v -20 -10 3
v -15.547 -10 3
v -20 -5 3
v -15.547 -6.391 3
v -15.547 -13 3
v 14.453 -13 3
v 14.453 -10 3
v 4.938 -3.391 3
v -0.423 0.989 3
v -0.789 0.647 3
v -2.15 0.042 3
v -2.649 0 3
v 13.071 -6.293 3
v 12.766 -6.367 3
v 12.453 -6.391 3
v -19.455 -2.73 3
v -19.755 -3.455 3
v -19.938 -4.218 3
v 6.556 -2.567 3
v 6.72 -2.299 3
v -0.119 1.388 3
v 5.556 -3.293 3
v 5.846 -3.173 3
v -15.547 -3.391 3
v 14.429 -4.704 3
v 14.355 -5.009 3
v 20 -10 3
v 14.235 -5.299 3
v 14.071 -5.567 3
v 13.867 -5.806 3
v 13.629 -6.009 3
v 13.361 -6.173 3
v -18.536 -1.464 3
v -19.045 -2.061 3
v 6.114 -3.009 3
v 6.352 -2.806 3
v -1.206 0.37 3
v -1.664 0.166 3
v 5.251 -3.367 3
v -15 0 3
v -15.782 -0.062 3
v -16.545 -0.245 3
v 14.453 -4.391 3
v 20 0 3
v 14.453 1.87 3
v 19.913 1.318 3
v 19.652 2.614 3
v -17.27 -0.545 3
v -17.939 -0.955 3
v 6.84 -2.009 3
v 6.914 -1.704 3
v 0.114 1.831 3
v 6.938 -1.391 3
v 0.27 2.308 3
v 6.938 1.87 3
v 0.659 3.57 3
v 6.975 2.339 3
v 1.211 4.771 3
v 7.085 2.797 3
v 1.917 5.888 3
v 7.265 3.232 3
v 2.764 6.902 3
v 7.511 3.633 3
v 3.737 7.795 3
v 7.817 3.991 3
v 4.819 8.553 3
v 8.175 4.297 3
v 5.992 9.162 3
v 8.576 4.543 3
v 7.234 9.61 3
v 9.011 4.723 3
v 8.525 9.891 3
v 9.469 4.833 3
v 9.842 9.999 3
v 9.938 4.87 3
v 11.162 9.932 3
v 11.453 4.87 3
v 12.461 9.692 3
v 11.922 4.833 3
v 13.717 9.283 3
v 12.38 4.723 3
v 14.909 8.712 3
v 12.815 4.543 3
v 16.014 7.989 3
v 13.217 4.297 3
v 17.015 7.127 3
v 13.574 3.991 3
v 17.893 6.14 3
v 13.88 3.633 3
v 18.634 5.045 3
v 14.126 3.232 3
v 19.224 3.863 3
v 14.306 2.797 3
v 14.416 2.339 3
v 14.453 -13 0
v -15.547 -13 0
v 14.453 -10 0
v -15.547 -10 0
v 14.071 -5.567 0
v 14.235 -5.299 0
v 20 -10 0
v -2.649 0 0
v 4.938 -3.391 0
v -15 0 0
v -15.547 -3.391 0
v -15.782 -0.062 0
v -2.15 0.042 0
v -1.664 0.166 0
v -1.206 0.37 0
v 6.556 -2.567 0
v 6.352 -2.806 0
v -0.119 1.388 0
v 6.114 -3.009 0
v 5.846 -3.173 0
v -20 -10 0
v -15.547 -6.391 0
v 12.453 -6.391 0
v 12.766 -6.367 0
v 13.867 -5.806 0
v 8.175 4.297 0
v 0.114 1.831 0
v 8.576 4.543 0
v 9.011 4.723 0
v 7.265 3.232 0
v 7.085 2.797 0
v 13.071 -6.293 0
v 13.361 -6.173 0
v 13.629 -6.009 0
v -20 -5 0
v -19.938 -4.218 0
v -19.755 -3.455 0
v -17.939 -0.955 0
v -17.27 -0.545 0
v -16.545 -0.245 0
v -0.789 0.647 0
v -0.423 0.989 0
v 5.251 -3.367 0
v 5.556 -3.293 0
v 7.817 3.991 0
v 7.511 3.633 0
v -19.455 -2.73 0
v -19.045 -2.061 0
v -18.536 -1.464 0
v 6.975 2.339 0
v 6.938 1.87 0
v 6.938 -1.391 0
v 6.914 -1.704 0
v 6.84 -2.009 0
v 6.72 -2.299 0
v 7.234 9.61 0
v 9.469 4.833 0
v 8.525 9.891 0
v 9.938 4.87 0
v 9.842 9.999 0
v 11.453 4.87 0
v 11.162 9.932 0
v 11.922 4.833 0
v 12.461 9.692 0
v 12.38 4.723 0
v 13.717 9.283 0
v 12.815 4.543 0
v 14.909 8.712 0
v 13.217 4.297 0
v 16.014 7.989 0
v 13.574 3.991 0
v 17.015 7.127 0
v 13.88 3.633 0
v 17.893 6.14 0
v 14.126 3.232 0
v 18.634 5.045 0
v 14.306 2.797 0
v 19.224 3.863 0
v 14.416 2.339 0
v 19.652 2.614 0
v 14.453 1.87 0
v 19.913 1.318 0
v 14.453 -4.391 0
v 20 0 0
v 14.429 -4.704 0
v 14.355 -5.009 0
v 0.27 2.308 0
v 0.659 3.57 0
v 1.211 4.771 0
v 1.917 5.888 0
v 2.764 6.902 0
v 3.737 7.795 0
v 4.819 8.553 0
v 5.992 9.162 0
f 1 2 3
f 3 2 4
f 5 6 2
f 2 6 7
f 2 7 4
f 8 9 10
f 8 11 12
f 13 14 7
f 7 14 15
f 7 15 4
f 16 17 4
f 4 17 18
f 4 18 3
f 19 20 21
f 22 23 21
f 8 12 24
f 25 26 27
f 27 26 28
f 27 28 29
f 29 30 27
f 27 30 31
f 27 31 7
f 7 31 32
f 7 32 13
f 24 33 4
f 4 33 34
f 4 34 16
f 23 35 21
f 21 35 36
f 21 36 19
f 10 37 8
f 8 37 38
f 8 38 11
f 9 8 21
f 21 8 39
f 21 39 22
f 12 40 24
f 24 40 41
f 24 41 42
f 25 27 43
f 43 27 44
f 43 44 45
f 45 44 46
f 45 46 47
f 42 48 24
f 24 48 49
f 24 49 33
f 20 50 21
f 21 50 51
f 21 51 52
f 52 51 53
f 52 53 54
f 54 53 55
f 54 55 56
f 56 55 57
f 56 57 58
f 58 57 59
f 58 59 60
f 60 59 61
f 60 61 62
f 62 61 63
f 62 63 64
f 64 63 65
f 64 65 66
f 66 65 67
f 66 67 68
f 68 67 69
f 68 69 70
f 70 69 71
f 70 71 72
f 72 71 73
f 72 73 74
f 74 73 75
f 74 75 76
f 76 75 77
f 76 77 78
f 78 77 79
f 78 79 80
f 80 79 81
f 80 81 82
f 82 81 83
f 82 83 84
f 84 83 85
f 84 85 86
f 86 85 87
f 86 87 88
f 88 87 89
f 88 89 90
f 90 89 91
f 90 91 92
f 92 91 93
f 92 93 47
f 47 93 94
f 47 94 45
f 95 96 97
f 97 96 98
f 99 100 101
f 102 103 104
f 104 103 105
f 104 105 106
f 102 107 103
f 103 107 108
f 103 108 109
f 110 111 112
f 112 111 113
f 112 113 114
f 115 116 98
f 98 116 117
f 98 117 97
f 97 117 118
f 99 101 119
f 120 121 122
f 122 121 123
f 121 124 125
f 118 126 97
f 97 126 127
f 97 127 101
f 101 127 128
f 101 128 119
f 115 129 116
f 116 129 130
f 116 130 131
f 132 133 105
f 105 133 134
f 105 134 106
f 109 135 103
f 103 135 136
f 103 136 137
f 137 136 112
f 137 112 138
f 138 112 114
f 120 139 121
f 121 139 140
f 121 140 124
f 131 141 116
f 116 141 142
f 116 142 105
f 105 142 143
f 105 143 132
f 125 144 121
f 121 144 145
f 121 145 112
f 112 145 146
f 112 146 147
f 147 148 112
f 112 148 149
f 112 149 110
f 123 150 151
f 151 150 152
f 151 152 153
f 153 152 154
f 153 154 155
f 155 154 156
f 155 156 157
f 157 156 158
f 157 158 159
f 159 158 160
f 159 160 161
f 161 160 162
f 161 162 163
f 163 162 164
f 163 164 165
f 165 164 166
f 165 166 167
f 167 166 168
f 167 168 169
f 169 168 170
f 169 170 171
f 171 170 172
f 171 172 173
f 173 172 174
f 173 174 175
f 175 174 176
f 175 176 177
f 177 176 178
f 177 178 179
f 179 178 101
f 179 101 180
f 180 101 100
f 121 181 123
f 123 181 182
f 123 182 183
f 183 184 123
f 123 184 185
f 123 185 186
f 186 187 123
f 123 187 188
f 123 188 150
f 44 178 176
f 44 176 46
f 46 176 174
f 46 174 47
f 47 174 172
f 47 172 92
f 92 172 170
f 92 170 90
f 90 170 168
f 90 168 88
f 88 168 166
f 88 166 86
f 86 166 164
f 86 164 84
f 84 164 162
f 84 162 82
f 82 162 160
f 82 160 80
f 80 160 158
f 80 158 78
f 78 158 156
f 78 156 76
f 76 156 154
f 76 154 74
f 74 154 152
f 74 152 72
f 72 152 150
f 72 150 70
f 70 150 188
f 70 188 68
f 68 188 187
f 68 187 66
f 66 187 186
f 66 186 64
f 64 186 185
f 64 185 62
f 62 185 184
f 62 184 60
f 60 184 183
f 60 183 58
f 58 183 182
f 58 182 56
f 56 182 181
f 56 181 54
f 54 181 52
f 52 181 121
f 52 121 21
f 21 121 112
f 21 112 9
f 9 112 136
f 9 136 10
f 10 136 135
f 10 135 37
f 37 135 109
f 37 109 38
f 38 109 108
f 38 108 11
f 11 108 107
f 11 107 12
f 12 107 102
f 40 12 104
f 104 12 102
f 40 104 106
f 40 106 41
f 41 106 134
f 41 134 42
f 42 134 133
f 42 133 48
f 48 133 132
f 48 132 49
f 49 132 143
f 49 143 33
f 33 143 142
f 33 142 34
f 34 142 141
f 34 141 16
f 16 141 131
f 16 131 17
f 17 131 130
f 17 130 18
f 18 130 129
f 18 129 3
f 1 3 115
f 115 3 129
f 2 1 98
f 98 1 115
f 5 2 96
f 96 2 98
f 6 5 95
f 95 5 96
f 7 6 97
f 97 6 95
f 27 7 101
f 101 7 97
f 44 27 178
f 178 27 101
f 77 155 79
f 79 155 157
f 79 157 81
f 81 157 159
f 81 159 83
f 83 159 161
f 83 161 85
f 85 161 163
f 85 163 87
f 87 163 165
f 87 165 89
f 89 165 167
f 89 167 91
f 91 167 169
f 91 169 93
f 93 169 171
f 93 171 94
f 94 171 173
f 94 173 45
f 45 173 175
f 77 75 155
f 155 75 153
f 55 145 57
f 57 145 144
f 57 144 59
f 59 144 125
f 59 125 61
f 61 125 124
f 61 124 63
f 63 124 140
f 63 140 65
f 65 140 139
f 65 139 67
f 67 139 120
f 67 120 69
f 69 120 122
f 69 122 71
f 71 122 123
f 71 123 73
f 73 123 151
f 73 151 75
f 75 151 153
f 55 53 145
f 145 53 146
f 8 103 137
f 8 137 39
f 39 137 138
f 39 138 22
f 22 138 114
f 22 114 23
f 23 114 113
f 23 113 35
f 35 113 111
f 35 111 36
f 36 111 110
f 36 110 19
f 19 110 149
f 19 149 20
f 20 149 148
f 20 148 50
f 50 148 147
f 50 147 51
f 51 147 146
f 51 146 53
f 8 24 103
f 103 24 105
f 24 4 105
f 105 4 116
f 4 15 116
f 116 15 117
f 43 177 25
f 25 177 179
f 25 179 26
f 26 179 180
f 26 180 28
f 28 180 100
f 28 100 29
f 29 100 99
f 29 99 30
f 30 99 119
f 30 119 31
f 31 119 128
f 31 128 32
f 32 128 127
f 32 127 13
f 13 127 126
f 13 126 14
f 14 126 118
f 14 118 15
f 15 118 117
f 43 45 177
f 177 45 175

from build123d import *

# Parameters (mm, degrees)
SALIENTE_EXTRUIR1_DEPTH = 3


with BuildPart() as part:
    # Croquis1 → Saliente-Extruir1 (new body)
    with BuildSketch(Plane.XY):
        with BuildLine():
            Line((-2.649110641, 0), (-15, 0))
            ThreePointArc((-15, 0), (-18.535533906, -1.464466094), (-20, -5))
            Line((-20, -5), (-20, -10))
            Line((-20, -10), (-15.546822742, -10))
            Line((-15.546822742, -10), (-15.546822742, -13))
            Line((-15.546822742, -13), (14.453177258, -13))
            Line((14.453177258, -13), (14.453177258, -10))
            Line((14.453177258, -10), (20, -10))
            Line((20, -10), (20, 0))
            ThreePointArc((20, 0), (11.161711866, 9.932292059), (0.269914892, 2.307692308))
            ThreePointArc((0.269914892, 2.307692308), (-0.788589622, 0.646606378), (-2.649110641, 0))
        make_face()
        with BuildLine():
            Line((-15.546822742, -6.391304348), (12.453177258, -6.391304348))
            ThreePointArc((12.453177258, -6.391304348), (13.86739082, -5.80551791), (14.453177258, -4.391304348))
            Line((14.453177258, -4.391304348), (14.453177258, -3.391304348))
            Line((14.453177258, -3.391304348), (14.453177258, 1.869565217))
            ThreePointArc((14.453177258, 1.869565217), (13.574497601, 3.990885561), (11.453177258, 4.869565217))
            Line((11.453177258, 4.869565217), (9.93812709, 4.869565217))
            ThreePointArc((9.93812709, 4.869565217), (7.816806747, 3.990885561), (6.93812709, 1.869565217))
            Line((6.93812709, 1.869565217), (6.93812709, -1.391304348))
            ThreePointArc((6.93812709, -1.391304348), (6.352340653, -2.80551791), (4.93812709, -3.391304348))
            Line((4.93812709, -3.391304348), (-15.546822742, -3.391304348))
            Line((-15.546822742, -3.391304348), (-15.546822742, -6.391304348))
        make_face(mode=Mode.SUBTRACT)
    extrude(amount=SALIENTE_EXTRUIR1_DEPTH)


solid = part.part
